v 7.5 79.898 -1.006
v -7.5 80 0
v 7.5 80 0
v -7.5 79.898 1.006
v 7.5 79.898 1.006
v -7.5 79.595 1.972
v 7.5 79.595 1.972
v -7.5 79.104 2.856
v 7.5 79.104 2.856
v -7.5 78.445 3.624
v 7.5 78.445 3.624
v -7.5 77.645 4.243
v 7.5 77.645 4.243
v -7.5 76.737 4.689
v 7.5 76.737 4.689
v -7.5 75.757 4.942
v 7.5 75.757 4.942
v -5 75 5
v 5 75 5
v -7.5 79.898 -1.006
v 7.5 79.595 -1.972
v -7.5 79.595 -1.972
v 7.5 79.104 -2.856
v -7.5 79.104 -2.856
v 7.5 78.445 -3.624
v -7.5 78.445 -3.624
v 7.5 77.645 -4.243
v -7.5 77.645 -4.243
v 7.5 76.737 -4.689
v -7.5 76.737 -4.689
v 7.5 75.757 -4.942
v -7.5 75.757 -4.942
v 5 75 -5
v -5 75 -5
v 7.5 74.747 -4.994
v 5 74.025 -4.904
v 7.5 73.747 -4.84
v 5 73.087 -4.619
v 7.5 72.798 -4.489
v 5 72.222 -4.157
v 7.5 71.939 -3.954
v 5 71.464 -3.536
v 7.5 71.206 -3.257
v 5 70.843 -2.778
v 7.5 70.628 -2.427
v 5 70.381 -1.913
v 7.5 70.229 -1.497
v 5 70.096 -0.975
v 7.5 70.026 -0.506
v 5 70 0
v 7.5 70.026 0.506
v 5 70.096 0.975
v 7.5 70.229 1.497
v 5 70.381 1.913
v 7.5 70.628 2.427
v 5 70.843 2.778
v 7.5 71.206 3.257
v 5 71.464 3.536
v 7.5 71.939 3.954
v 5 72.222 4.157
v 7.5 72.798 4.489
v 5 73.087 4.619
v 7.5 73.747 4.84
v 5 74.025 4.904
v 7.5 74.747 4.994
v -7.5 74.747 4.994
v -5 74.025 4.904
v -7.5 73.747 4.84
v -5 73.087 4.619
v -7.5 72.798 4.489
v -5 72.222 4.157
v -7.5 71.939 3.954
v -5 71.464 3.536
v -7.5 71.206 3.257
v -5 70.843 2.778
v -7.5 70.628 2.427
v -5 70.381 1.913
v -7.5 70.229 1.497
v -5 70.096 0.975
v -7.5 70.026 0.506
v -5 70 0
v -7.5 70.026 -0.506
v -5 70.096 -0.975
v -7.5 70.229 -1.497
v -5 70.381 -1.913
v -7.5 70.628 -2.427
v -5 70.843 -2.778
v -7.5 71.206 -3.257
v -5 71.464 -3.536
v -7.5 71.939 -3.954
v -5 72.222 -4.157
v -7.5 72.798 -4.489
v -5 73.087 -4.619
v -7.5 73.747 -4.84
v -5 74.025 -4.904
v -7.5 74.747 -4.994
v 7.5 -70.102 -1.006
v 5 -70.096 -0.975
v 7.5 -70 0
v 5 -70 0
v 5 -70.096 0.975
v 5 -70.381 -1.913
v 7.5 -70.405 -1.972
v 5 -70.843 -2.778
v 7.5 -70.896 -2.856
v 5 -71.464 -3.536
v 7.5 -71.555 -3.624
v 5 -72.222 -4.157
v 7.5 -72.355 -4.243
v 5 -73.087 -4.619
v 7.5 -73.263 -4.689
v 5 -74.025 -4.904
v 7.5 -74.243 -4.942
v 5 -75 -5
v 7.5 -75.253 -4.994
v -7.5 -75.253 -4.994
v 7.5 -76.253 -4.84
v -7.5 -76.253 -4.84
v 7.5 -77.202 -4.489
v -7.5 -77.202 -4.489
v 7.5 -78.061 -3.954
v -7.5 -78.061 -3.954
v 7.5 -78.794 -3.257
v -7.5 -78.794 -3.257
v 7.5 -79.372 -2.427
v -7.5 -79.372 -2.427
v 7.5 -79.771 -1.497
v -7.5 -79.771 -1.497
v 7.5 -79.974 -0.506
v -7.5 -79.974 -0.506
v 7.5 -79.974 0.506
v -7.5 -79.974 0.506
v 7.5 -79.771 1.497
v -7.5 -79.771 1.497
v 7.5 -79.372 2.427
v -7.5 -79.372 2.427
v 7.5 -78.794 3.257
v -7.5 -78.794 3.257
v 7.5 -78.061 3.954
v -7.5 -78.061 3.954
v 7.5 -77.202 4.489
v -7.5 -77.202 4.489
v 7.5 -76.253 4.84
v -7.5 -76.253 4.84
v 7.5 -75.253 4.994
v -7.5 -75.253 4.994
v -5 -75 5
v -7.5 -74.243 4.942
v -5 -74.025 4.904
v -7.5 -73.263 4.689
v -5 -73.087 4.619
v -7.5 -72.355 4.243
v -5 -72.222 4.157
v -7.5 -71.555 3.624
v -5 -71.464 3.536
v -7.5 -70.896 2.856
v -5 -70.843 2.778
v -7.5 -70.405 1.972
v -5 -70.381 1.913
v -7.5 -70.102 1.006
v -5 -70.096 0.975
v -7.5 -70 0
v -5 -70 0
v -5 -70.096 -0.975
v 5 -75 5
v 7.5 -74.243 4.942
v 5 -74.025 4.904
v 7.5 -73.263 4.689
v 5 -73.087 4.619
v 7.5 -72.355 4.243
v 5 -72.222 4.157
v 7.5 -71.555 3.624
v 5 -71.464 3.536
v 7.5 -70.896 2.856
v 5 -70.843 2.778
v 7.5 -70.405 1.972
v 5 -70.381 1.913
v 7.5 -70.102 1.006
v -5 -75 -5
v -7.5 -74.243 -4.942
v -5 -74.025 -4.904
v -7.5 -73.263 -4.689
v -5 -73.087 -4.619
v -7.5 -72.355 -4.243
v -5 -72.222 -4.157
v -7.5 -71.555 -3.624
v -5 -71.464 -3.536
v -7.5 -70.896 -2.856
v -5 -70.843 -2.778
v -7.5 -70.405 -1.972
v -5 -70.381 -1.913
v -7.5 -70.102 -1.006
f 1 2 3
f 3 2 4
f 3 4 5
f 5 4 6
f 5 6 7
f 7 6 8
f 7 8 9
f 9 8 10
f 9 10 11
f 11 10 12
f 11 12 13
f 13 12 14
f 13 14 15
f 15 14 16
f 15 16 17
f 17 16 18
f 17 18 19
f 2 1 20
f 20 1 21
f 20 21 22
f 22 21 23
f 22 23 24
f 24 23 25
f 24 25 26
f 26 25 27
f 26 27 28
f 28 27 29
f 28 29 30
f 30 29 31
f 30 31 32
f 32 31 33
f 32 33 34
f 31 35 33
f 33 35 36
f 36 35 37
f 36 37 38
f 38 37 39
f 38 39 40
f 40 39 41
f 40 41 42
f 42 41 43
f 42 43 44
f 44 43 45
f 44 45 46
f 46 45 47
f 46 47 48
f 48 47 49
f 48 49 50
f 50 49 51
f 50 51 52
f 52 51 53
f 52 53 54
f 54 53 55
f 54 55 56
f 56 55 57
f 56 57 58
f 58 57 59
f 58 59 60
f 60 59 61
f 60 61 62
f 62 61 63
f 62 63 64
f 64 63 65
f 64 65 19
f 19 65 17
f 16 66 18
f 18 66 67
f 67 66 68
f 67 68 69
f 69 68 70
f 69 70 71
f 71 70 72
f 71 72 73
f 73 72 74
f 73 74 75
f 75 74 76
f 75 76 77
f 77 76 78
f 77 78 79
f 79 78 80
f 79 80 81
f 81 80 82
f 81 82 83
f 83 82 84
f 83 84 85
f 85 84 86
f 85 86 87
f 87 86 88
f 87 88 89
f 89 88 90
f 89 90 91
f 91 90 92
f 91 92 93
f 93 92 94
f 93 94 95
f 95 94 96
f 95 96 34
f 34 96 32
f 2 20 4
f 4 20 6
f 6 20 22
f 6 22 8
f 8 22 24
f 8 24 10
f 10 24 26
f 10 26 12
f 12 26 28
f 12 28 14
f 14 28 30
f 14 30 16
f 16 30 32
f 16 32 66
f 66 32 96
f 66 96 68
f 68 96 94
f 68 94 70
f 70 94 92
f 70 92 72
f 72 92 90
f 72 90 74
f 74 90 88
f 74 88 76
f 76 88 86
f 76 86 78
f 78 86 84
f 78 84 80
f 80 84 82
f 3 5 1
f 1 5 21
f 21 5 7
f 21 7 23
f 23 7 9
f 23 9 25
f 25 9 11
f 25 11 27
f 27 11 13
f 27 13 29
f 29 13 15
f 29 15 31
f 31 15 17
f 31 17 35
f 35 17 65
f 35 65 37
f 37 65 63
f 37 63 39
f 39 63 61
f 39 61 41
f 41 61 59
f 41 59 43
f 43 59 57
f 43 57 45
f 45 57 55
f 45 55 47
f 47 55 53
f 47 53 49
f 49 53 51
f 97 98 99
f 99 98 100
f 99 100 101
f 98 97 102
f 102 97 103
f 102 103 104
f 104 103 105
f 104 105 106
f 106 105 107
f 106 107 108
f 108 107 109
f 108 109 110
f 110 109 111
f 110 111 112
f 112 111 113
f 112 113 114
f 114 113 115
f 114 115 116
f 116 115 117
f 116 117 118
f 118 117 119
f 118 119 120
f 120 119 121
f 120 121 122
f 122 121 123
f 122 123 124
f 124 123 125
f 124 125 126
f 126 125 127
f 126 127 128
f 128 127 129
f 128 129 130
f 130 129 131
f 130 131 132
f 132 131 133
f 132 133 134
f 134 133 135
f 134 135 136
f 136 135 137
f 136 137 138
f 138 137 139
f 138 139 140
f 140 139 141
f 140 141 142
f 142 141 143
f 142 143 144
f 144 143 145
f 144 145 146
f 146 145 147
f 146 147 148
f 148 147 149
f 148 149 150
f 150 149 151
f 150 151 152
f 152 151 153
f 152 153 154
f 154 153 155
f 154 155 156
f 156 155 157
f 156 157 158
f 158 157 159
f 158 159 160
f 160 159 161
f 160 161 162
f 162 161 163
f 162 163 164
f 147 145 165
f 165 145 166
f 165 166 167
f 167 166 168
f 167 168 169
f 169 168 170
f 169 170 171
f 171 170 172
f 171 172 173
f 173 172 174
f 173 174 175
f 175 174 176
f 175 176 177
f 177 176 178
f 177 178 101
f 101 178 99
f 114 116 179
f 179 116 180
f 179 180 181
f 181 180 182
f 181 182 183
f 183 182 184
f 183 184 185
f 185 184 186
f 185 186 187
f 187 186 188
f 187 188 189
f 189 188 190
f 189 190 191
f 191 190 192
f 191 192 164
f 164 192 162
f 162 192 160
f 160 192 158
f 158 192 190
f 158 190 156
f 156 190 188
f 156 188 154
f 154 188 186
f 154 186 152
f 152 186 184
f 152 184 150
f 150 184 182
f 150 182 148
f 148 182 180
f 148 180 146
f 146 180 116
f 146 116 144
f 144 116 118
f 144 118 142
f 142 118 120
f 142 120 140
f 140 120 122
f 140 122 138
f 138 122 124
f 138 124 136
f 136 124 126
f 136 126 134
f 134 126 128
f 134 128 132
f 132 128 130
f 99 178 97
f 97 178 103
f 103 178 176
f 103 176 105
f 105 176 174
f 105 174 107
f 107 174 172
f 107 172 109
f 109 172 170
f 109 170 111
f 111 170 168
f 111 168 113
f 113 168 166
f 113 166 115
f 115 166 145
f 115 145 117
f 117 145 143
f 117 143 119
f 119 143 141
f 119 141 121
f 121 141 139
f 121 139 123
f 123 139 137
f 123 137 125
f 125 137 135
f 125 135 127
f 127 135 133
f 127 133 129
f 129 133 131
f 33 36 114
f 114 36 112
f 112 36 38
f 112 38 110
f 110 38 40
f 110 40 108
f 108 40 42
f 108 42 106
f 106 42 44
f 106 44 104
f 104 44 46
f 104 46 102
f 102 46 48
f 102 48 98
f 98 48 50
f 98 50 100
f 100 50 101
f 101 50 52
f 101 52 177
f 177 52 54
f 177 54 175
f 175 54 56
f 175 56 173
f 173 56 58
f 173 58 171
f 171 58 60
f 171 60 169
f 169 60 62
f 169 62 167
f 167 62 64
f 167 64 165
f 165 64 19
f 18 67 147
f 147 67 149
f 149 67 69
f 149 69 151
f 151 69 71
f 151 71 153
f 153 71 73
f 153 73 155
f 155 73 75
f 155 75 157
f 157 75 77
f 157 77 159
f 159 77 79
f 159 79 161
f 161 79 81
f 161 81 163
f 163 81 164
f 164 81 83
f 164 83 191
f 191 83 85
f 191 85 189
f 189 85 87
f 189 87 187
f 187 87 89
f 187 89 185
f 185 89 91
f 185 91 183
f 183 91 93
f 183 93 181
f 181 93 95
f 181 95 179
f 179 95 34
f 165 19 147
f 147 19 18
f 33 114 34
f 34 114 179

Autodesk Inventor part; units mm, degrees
ref_plane "YZ Plane" through (0, 0, 0) normal (1, 0, 0) x (0, 1, 0)
ref_plane "XZ Plane" through (0, 0, 0) normal (0, 1, 0) x (-1, 0, 0)
ref_plane "XY Plane" through (0, 0, 0) normal (0, 0, 1) x (1, 0, 0)
sketch "スケッチ1" plane through (0, 0, 0) normal (1, 0, 0) x (0, 1, 0)
  line L0 (-75, 5) -> (75, 5)
  line L1 (75, 5) -> (75, -5)
  line L2 (75, -5) -> (-75, -5)
  line L3 (-75, -5) -> (-75, 5)
  circle A0 centre (-75, 0) radius 5
  circle A1 centre (75, 0) radius 5
  point P0 (0, 0)
  point P1 (0, 5)
  dimension "d0" = 150
  dimension "d1" = 10
  dimension "d2" = 5
  dimension "d3" = 75
extrude "押し出し1" add sketch "スケッチ1" along normal blind 5 and the other way blind 5 contours A0 L3 | L0 A1 L2 A0 | L1 A1 picked at (-73.4984, 0.7231) picked at (72.0793, -0.9468)
extrude "押し出し2" add sketch "スケッチ1" along normal blind 7.5 and the other way blind 7.5 contours A0 L3 | L3 A0 | A1 L1 | L1 A1
